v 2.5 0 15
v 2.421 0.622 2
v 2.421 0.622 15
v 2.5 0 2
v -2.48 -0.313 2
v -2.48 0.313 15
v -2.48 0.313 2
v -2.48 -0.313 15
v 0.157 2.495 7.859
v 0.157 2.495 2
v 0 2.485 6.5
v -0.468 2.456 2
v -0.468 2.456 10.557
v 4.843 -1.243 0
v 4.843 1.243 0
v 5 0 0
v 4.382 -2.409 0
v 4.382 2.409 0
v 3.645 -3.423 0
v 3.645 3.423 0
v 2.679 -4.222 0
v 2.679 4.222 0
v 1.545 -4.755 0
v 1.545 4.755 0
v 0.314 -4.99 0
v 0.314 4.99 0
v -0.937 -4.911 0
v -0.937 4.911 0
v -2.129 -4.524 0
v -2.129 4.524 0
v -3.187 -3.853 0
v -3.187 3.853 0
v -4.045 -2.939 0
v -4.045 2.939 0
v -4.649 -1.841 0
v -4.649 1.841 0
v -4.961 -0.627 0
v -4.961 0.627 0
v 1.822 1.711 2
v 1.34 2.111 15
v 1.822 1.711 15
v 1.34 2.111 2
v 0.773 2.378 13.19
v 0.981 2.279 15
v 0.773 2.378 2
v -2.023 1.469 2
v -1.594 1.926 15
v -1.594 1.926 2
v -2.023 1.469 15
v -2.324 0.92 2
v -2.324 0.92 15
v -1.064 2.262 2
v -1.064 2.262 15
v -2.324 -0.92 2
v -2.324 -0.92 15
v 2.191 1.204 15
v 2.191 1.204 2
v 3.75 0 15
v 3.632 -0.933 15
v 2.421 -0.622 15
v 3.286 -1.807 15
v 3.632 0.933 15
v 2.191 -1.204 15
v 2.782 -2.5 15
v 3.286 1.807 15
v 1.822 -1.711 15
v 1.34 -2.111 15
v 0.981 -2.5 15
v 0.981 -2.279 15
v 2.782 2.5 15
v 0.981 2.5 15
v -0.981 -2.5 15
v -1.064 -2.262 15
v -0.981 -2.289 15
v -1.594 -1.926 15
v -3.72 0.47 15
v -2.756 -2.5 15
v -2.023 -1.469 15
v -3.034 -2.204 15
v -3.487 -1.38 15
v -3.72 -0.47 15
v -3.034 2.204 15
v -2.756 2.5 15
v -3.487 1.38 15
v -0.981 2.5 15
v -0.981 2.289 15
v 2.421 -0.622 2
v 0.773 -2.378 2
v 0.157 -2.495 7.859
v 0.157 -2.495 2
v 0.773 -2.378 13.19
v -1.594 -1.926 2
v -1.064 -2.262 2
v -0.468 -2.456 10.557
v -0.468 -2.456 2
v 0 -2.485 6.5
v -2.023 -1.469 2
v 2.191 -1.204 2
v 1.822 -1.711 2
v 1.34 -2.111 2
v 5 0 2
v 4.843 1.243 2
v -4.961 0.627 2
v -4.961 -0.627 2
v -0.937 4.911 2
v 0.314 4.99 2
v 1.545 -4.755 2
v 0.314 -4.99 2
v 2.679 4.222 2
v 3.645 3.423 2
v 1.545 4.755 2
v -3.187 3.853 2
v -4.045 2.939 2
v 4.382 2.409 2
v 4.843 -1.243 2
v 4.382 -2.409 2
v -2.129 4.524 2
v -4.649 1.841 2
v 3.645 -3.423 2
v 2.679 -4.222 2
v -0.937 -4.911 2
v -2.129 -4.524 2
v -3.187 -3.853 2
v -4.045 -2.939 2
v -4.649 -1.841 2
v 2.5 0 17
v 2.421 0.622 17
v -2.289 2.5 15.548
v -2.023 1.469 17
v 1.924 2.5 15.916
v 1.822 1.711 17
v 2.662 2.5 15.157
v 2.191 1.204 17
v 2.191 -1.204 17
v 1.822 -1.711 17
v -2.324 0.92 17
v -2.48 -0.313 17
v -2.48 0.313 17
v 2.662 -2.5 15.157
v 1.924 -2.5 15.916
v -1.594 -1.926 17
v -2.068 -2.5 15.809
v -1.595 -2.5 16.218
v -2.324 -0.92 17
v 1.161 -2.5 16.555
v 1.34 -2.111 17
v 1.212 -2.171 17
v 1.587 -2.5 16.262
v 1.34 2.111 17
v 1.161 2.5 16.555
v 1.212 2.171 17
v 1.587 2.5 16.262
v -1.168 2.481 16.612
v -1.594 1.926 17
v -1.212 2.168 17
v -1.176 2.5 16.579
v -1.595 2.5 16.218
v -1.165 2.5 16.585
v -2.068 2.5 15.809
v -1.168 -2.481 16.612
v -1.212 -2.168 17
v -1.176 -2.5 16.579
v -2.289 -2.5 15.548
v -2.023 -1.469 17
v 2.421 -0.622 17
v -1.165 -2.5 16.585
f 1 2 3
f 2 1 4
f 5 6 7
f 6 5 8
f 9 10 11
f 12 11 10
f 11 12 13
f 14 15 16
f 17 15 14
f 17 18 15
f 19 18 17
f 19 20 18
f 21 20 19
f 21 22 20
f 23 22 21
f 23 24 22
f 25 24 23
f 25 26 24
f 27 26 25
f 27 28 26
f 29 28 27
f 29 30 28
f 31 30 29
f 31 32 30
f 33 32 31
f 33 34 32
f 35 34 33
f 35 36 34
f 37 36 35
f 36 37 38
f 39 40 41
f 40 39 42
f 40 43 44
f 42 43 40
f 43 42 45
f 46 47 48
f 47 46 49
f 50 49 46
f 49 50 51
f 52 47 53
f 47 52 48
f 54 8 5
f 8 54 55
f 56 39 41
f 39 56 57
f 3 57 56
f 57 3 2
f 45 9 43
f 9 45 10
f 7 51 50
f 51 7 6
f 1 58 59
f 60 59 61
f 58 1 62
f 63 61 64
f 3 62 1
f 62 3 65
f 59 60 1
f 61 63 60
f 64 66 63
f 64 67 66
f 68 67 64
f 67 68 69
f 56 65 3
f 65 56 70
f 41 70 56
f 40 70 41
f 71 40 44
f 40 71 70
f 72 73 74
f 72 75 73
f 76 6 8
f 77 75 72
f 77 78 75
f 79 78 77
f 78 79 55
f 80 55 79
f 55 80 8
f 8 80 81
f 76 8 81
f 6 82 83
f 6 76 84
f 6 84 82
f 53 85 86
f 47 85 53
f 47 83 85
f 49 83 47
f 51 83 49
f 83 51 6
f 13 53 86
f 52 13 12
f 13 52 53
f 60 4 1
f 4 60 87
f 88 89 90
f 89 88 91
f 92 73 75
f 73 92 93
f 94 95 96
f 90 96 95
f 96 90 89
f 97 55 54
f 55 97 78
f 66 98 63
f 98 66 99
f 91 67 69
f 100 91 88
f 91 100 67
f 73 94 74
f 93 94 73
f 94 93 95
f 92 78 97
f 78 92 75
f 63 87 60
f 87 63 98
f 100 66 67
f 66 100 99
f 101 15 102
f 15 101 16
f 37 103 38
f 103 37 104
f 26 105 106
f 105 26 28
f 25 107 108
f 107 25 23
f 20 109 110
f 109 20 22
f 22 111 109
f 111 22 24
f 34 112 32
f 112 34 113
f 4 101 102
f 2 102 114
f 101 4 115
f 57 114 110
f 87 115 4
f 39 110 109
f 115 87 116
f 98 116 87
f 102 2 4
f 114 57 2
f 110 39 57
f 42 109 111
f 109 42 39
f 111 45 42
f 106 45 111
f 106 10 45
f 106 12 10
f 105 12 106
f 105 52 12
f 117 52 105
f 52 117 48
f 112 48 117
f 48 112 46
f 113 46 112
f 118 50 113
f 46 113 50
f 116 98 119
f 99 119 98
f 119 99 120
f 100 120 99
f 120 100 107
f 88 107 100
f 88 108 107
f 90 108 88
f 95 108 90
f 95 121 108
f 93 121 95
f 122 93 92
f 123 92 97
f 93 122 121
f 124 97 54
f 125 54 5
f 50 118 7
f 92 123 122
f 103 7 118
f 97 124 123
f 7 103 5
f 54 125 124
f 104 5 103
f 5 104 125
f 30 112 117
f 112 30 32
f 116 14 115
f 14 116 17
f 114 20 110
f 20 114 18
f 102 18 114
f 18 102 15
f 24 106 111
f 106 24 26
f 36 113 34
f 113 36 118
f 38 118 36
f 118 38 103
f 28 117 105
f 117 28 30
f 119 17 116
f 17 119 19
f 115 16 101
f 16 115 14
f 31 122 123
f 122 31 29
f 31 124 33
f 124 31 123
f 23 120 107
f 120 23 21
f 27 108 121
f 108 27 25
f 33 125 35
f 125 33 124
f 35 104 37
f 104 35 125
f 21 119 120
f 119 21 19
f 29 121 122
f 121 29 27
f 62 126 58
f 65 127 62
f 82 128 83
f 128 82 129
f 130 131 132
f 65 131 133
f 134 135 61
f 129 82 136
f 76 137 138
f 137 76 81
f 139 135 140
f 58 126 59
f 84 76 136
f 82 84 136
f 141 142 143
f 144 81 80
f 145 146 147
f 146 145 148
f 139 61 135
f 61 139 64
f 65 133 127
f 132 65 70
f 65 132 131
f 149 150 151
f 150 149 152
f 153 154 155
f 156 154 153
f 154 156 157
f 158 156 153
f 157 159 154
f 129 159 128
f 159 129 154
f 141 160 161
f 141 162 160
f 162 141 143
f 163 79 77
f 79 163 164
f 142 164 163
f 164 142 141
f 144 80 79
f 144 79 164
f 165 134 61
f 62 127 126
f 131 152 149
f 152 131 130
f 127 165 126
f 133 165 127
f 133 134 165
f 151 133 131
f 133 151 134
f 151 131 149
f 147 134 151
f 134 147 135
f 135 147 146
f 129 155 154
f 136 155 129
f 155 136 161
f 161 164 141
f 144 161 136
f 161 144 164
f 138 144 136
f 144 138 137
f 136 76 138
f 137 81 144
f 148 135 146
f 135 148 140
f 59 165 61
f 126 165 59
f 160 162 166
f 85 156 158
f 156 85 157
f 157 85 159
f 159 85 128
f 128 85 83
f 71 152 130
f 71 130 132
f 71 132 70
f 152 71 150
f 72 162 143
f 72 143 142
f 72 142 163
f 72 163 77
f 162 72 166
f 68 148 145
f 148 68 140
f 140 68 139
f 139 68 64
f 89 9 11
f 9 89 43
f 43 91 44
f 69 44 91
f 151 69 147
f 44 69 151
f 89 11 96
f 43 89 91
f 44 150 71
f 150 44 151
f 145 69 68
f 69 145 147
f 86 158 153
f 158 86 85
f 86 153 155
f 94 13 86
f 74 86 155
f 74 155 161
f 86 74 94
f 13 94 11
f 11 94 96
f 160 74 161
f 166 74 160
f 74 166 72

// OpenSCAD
quality=25;

pin_radius=2.5;
pin_length=15;

backing_thickness=2;



difference()
{
    union()
    {
        cylinder(r=pin_radius,h=pin_length,$fn=quality);
        cylinder(r=pin_radius*2,h=backing_thickness,$fn=quality);
        
        //bell clip
        translate([0,0,pin_length]) cylinder(r1=pin_radius*1.5,r2=pin_radius,h=backing_thickness,$fn=quality);
    }
    union()
    {
        translate([0,pin_radius*1.5,pin_length+backing_thickness*2]) scale([1,1,5]) rotate([90,90,0]) cylinder(r=pin_radius,h=pin_radius*3,$fn=3);
        rotate([0,0,90]) union()
        {
            translate([pin_radius,-pin_radius*1.5,pin_length]) cube([pin_radius,pin_radius*3,pin_radius]);
            rotate([0,0,180]) translate([pin_radius,-pin_radius*1.5,pin_length]) cube([pin_radius,pin_radius*3,pin_radius]);
        }
    }
}
